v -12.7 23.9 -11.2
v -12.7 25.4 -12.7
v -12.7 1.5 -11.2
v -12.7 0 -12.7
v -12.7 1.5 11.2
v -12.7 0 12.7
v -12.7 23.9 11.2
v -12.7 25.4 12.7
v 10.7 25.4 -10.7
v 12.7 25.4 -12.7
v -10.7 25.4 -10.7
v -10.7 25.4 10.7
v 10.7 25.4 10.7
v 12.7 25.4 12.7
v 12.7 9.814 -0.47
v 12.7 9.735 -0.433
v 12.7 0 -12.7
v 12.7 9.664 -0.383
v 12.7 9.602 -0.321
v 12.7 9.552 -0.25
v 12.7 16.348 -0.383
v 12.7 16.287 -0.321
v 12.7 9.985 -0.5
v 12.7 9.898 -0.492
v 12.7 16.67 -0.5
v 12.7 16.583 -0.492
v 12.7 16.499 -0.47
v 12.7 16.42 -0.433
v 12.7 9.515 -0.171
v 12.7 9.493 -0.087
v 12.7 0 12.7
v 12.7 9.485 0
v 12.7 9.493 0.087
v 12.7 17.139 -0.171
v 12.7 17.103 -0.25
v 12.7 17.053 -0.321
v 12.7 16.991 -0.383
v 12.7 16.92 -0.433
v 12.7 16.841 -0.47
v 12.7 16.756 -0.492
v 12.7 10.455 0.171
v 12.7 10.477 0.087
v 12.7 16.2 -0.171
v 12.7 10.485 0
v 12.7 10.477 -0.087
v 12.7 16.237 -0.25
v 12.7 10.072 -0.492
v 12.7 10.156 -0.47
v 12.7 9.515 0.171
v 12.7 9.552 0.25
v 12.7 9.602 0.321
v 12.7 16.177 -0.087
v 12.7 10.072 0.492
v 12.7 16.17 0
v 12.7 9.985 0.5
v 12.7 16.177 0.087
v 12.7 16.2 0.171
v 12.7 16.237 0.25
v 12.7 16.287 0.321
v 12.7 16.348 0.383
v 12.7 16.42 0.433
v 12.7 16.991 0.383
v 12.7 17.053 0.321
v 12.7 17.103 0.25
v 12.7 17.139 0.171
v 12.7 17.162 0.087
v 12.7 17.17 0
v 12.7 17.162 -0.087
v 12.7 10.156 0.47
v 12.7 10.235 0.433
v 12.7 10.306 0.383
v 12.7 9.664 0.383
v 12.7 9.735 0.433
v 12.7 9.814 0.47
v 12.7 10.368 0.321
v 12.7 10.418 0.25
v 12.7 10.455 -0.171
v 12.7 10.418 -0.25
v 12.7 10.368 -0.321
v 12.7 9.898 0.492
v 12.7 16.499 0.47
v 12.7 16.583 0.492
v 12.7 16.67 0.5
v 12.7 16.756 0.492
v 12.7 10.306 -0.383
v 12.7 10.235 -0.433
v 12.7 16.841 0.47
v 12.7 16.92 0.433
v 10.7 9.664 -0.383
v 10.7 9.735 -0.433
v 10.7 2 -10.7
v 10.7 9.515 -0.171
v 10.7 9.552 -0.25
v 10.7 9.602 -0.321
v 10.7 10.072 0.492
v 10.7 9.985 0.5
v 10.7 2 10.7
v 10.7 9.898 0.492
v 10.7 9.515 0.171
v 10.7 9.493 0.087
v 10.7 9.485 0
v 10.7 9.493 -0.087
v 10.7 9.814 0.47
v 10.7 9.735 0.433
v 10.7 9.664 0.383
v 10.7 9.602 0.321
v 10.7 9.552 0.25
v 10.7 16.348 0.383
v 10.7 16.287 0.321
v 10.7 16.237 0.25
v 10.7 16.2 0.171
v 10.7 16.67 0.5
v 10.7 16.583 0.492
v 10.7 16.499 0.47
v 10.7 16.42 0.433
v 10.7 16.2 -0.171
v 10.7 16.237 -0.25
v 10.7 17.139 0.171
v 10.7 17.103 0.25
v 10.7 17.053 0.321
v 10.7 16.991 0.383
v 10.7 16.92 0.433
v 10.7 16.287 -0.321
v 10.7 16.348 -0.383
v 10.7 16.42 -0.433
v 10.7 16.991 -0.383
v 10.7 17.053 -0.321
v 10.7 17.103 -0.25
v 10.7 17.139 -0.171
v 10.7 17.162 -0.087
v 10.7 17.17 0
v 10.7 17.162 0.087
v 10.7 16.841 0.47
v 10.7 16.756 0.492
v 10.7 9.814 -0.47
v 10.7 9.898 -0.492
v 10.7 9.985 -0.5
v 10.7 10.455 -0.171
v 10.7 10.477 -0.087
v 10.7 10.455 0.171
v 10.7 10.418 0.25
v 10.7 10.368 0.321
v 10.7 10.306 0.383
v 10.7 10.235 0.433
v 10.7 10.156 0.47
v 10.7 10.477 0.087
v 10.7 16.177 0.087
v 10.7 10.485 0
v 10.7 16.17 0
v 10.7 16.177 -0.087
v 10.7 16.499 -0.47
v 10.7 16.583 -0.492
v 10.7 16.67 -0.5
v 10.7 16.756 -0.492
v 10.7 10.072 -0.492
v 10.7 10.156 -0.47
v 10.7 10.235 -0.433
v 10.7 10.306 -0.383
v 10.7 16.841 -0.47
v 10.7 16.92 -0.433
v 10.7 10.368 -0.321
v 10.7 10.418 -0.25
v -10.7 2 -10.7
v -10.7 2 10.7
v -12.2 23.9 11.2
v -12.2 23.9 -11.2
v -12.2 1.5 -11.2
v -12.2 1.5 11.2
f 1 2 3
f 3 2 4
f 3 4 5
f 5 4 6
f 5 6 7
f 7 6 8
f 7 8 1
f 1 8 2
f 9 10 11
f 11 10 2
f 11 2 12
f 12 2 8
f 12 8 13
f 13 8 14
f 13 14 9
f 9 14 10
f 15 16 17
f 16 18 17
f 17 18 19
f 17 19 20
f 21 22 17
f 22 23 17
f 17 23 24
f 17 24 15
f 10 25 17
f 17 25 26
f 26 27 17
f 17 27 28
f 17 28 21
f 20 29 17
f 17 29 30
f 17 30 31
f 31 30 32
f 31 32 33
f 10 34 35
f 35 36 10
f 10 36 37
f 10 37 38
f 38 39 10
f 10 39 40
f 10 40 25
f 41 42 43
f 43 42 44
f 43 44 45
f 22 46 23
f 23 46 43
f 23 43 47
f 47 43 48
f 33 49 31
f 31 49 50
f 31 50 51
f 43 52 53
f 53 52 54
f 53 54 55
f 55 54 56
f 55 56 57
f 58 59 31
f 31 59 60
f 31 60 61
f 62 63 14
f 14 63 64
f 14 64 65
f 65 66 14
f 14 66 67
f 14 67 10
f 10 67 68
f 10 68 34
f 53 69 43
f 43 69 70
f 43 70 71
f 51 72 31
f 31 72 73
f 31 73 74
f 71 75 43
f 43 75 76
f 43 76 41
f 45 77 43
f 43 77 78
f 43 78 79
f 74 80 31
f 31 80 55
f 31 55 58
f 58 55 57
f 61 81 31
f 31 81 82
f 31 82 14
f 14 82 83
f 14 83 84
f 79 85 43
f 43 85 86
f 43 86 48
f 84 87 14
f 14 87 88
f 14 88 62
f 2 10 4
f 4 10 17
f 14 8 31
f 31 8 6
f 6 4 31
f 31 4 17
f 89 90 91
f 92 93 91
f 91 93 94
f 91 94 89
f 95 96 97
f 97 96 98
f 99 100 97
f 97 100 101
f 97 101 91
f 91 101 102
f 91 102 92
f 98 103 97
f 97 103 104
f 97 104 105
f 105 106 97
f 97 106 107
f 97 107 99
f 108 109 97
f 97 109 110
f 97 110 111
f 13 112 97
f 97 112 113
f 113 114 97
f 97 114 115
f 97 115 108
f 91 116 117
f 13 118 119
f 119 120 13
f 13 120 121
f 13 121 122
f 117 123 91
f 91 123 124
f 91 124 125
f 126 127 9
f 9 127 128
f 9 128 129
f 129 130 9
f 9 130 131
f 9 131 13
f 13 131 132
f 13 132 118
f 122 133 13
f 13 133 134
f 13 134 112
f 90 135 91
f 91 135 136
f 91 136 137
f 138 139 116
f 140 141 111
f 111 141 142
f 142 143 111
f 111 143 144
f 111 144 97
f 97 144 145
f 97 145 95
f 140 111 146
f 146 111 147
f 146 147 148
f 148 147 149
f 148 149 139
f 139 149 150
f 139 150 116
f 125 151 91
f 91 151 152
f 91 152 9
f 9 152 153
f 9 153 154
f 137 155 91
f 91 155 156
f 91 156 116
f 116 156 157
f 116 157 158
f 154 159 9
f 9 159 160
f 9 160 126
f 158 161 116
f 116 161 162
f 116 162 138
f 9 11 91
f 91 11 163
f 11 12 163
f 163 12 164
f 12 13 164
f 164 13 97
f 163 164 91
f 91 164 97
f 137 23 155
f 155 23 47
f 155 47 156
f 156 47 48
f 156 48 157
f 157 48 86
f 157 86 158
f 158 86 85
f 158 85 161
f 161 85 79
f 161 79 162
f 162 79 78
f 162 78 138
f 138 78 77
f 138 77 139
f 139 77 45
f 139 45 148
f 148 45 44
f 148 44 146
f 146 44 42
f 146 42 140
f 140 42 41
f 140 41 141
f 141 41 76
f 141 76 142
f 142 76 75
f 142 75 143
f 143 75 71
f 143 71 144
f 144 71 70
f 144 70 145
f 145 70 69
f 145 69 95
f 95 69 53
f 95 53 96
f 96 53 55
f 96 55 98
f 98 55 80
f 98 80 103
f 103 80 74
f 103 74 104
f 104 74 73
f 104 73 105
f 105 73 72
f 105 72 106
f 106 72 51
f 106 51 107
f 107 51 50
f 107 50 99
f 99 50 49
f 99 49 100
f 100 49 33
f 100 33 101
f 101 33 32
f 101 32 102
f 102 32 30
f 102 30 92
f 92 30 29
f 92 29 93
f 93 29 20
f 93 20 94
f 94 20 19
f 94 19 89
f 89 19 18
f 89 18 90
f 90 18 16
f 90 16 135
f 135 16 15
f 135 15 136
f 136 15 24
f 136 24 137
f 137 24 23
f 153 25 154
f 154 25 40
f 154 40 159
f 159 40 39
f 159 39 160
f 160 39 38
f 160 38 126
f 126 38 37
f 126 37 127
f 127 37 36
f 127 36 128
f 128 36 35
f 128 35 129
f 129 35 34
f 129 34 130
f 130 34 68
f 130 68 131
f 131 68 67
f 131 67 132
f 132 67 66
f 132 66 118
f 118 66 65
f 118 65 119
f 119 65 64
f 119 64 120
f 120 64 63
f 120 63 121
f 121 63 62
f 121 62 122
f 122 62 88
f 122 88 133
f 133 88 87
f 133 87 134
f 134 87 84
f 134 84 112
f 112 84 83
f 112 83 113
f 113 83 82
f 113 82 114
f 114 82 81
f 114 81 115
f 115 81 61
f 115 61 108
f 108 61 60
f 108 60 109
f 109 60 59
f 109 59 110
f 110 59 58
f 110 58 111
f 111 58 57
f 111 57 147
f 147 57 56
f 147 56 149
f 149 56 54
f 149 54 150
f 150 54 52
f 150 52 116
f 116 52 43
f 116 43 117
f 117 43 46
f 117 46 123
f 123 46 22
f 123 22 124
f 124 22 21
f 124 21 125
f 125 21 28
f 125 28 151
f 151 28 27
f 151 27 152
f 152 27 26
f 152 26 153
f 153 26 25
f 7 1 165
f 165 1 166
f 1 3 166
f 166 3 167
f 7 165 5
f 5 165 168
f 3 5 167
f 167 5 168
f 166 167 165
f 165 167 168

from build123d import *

# Parameters (mm, degrees)
SKETCH1_W           = 25.4
SKETCH1_H           = 25.4
BOSS_EXTRUDE1_DEPTH = 25.4
SHELL1_T            = -2
SKETCH2_R           = 0.5
CUT_EXTRUDE1_DEPTH  = 6.4
SKETCH3_R           = 0.5
CUT_EXTRUDE2_DEPTH  = 6.4
SHELL2_START        = 1.5
SHELL2_OUTLINE_W    = 0.5
SHELL2_OUTLINE_H    = 22.4
SHELL2_DEPTH        = 22.4


# Read off the part's stored shape, not the designer's step: Shell2
with BuildPart() as part:
    # Sketch1 → Boss-Extrude1 (new body)
    with BuildSketch(Plane(origin=(0, 0, 0), x_dir=(1, 0, 0), z_dir=(0, 1, 0))):
        Rectangle(SKETCH1_W, SKETCH1_H)
    extrude(amount=BOSS_EXTRUDE1_DEPTH)

    # Shell1
    shell1_openings = [part.faces().sort_by_distance(p)[0] for p in [
        (0, 25.4, 0),
    ]]
    offset(amount=SHELL1_T, openings=shell1_openings, kind=Kind.INTERSECTION)

    # Sketch2 → Cut-Extrude1 (cut)
    with BuildSketch(Plane(origin=(12.7, 0, 0), x_dir=(0, 0, -1), z_dir=(1, 0, 0))):
        with Locations((0, 9.984928122)):
            Circle(SKETCH2_R)
    extrude(amount=-CUT_EXTRUDE1_DEPTH, mode=Mode.SUBTRACT)

    # Sketch3 → Cut-Extrude2 (cut)
    with BuildSketch(Plane(origin=(12.7, 0, 0), x_dir=(0, 0, -1), z_dir=(1, 0, 0))):
        with Locations((0, 16.669636536)):
            Circle(SKETCH3_R)
    extrude(amount=-CUT_EXTRUDE2_DEPTH, mode=Mode.SUBTRACT)

    # Shell2 outline → Shell2 (cut)
    with BuildSketch(Plane(origin=(0, 0, 0), x_dir=(1, 0, 0), z_dir=(0, 1, 0)).offset(SHELL2_START)):
        with Locations((-12.45, 0)):
            Rectangle(SHELL2_OUTLINE_W, SHELL2_OUTLINE_H)
    extrude(amount=SHELL2_DEPTH, mode=Mode.SUBTRACT)


solid = part.part
